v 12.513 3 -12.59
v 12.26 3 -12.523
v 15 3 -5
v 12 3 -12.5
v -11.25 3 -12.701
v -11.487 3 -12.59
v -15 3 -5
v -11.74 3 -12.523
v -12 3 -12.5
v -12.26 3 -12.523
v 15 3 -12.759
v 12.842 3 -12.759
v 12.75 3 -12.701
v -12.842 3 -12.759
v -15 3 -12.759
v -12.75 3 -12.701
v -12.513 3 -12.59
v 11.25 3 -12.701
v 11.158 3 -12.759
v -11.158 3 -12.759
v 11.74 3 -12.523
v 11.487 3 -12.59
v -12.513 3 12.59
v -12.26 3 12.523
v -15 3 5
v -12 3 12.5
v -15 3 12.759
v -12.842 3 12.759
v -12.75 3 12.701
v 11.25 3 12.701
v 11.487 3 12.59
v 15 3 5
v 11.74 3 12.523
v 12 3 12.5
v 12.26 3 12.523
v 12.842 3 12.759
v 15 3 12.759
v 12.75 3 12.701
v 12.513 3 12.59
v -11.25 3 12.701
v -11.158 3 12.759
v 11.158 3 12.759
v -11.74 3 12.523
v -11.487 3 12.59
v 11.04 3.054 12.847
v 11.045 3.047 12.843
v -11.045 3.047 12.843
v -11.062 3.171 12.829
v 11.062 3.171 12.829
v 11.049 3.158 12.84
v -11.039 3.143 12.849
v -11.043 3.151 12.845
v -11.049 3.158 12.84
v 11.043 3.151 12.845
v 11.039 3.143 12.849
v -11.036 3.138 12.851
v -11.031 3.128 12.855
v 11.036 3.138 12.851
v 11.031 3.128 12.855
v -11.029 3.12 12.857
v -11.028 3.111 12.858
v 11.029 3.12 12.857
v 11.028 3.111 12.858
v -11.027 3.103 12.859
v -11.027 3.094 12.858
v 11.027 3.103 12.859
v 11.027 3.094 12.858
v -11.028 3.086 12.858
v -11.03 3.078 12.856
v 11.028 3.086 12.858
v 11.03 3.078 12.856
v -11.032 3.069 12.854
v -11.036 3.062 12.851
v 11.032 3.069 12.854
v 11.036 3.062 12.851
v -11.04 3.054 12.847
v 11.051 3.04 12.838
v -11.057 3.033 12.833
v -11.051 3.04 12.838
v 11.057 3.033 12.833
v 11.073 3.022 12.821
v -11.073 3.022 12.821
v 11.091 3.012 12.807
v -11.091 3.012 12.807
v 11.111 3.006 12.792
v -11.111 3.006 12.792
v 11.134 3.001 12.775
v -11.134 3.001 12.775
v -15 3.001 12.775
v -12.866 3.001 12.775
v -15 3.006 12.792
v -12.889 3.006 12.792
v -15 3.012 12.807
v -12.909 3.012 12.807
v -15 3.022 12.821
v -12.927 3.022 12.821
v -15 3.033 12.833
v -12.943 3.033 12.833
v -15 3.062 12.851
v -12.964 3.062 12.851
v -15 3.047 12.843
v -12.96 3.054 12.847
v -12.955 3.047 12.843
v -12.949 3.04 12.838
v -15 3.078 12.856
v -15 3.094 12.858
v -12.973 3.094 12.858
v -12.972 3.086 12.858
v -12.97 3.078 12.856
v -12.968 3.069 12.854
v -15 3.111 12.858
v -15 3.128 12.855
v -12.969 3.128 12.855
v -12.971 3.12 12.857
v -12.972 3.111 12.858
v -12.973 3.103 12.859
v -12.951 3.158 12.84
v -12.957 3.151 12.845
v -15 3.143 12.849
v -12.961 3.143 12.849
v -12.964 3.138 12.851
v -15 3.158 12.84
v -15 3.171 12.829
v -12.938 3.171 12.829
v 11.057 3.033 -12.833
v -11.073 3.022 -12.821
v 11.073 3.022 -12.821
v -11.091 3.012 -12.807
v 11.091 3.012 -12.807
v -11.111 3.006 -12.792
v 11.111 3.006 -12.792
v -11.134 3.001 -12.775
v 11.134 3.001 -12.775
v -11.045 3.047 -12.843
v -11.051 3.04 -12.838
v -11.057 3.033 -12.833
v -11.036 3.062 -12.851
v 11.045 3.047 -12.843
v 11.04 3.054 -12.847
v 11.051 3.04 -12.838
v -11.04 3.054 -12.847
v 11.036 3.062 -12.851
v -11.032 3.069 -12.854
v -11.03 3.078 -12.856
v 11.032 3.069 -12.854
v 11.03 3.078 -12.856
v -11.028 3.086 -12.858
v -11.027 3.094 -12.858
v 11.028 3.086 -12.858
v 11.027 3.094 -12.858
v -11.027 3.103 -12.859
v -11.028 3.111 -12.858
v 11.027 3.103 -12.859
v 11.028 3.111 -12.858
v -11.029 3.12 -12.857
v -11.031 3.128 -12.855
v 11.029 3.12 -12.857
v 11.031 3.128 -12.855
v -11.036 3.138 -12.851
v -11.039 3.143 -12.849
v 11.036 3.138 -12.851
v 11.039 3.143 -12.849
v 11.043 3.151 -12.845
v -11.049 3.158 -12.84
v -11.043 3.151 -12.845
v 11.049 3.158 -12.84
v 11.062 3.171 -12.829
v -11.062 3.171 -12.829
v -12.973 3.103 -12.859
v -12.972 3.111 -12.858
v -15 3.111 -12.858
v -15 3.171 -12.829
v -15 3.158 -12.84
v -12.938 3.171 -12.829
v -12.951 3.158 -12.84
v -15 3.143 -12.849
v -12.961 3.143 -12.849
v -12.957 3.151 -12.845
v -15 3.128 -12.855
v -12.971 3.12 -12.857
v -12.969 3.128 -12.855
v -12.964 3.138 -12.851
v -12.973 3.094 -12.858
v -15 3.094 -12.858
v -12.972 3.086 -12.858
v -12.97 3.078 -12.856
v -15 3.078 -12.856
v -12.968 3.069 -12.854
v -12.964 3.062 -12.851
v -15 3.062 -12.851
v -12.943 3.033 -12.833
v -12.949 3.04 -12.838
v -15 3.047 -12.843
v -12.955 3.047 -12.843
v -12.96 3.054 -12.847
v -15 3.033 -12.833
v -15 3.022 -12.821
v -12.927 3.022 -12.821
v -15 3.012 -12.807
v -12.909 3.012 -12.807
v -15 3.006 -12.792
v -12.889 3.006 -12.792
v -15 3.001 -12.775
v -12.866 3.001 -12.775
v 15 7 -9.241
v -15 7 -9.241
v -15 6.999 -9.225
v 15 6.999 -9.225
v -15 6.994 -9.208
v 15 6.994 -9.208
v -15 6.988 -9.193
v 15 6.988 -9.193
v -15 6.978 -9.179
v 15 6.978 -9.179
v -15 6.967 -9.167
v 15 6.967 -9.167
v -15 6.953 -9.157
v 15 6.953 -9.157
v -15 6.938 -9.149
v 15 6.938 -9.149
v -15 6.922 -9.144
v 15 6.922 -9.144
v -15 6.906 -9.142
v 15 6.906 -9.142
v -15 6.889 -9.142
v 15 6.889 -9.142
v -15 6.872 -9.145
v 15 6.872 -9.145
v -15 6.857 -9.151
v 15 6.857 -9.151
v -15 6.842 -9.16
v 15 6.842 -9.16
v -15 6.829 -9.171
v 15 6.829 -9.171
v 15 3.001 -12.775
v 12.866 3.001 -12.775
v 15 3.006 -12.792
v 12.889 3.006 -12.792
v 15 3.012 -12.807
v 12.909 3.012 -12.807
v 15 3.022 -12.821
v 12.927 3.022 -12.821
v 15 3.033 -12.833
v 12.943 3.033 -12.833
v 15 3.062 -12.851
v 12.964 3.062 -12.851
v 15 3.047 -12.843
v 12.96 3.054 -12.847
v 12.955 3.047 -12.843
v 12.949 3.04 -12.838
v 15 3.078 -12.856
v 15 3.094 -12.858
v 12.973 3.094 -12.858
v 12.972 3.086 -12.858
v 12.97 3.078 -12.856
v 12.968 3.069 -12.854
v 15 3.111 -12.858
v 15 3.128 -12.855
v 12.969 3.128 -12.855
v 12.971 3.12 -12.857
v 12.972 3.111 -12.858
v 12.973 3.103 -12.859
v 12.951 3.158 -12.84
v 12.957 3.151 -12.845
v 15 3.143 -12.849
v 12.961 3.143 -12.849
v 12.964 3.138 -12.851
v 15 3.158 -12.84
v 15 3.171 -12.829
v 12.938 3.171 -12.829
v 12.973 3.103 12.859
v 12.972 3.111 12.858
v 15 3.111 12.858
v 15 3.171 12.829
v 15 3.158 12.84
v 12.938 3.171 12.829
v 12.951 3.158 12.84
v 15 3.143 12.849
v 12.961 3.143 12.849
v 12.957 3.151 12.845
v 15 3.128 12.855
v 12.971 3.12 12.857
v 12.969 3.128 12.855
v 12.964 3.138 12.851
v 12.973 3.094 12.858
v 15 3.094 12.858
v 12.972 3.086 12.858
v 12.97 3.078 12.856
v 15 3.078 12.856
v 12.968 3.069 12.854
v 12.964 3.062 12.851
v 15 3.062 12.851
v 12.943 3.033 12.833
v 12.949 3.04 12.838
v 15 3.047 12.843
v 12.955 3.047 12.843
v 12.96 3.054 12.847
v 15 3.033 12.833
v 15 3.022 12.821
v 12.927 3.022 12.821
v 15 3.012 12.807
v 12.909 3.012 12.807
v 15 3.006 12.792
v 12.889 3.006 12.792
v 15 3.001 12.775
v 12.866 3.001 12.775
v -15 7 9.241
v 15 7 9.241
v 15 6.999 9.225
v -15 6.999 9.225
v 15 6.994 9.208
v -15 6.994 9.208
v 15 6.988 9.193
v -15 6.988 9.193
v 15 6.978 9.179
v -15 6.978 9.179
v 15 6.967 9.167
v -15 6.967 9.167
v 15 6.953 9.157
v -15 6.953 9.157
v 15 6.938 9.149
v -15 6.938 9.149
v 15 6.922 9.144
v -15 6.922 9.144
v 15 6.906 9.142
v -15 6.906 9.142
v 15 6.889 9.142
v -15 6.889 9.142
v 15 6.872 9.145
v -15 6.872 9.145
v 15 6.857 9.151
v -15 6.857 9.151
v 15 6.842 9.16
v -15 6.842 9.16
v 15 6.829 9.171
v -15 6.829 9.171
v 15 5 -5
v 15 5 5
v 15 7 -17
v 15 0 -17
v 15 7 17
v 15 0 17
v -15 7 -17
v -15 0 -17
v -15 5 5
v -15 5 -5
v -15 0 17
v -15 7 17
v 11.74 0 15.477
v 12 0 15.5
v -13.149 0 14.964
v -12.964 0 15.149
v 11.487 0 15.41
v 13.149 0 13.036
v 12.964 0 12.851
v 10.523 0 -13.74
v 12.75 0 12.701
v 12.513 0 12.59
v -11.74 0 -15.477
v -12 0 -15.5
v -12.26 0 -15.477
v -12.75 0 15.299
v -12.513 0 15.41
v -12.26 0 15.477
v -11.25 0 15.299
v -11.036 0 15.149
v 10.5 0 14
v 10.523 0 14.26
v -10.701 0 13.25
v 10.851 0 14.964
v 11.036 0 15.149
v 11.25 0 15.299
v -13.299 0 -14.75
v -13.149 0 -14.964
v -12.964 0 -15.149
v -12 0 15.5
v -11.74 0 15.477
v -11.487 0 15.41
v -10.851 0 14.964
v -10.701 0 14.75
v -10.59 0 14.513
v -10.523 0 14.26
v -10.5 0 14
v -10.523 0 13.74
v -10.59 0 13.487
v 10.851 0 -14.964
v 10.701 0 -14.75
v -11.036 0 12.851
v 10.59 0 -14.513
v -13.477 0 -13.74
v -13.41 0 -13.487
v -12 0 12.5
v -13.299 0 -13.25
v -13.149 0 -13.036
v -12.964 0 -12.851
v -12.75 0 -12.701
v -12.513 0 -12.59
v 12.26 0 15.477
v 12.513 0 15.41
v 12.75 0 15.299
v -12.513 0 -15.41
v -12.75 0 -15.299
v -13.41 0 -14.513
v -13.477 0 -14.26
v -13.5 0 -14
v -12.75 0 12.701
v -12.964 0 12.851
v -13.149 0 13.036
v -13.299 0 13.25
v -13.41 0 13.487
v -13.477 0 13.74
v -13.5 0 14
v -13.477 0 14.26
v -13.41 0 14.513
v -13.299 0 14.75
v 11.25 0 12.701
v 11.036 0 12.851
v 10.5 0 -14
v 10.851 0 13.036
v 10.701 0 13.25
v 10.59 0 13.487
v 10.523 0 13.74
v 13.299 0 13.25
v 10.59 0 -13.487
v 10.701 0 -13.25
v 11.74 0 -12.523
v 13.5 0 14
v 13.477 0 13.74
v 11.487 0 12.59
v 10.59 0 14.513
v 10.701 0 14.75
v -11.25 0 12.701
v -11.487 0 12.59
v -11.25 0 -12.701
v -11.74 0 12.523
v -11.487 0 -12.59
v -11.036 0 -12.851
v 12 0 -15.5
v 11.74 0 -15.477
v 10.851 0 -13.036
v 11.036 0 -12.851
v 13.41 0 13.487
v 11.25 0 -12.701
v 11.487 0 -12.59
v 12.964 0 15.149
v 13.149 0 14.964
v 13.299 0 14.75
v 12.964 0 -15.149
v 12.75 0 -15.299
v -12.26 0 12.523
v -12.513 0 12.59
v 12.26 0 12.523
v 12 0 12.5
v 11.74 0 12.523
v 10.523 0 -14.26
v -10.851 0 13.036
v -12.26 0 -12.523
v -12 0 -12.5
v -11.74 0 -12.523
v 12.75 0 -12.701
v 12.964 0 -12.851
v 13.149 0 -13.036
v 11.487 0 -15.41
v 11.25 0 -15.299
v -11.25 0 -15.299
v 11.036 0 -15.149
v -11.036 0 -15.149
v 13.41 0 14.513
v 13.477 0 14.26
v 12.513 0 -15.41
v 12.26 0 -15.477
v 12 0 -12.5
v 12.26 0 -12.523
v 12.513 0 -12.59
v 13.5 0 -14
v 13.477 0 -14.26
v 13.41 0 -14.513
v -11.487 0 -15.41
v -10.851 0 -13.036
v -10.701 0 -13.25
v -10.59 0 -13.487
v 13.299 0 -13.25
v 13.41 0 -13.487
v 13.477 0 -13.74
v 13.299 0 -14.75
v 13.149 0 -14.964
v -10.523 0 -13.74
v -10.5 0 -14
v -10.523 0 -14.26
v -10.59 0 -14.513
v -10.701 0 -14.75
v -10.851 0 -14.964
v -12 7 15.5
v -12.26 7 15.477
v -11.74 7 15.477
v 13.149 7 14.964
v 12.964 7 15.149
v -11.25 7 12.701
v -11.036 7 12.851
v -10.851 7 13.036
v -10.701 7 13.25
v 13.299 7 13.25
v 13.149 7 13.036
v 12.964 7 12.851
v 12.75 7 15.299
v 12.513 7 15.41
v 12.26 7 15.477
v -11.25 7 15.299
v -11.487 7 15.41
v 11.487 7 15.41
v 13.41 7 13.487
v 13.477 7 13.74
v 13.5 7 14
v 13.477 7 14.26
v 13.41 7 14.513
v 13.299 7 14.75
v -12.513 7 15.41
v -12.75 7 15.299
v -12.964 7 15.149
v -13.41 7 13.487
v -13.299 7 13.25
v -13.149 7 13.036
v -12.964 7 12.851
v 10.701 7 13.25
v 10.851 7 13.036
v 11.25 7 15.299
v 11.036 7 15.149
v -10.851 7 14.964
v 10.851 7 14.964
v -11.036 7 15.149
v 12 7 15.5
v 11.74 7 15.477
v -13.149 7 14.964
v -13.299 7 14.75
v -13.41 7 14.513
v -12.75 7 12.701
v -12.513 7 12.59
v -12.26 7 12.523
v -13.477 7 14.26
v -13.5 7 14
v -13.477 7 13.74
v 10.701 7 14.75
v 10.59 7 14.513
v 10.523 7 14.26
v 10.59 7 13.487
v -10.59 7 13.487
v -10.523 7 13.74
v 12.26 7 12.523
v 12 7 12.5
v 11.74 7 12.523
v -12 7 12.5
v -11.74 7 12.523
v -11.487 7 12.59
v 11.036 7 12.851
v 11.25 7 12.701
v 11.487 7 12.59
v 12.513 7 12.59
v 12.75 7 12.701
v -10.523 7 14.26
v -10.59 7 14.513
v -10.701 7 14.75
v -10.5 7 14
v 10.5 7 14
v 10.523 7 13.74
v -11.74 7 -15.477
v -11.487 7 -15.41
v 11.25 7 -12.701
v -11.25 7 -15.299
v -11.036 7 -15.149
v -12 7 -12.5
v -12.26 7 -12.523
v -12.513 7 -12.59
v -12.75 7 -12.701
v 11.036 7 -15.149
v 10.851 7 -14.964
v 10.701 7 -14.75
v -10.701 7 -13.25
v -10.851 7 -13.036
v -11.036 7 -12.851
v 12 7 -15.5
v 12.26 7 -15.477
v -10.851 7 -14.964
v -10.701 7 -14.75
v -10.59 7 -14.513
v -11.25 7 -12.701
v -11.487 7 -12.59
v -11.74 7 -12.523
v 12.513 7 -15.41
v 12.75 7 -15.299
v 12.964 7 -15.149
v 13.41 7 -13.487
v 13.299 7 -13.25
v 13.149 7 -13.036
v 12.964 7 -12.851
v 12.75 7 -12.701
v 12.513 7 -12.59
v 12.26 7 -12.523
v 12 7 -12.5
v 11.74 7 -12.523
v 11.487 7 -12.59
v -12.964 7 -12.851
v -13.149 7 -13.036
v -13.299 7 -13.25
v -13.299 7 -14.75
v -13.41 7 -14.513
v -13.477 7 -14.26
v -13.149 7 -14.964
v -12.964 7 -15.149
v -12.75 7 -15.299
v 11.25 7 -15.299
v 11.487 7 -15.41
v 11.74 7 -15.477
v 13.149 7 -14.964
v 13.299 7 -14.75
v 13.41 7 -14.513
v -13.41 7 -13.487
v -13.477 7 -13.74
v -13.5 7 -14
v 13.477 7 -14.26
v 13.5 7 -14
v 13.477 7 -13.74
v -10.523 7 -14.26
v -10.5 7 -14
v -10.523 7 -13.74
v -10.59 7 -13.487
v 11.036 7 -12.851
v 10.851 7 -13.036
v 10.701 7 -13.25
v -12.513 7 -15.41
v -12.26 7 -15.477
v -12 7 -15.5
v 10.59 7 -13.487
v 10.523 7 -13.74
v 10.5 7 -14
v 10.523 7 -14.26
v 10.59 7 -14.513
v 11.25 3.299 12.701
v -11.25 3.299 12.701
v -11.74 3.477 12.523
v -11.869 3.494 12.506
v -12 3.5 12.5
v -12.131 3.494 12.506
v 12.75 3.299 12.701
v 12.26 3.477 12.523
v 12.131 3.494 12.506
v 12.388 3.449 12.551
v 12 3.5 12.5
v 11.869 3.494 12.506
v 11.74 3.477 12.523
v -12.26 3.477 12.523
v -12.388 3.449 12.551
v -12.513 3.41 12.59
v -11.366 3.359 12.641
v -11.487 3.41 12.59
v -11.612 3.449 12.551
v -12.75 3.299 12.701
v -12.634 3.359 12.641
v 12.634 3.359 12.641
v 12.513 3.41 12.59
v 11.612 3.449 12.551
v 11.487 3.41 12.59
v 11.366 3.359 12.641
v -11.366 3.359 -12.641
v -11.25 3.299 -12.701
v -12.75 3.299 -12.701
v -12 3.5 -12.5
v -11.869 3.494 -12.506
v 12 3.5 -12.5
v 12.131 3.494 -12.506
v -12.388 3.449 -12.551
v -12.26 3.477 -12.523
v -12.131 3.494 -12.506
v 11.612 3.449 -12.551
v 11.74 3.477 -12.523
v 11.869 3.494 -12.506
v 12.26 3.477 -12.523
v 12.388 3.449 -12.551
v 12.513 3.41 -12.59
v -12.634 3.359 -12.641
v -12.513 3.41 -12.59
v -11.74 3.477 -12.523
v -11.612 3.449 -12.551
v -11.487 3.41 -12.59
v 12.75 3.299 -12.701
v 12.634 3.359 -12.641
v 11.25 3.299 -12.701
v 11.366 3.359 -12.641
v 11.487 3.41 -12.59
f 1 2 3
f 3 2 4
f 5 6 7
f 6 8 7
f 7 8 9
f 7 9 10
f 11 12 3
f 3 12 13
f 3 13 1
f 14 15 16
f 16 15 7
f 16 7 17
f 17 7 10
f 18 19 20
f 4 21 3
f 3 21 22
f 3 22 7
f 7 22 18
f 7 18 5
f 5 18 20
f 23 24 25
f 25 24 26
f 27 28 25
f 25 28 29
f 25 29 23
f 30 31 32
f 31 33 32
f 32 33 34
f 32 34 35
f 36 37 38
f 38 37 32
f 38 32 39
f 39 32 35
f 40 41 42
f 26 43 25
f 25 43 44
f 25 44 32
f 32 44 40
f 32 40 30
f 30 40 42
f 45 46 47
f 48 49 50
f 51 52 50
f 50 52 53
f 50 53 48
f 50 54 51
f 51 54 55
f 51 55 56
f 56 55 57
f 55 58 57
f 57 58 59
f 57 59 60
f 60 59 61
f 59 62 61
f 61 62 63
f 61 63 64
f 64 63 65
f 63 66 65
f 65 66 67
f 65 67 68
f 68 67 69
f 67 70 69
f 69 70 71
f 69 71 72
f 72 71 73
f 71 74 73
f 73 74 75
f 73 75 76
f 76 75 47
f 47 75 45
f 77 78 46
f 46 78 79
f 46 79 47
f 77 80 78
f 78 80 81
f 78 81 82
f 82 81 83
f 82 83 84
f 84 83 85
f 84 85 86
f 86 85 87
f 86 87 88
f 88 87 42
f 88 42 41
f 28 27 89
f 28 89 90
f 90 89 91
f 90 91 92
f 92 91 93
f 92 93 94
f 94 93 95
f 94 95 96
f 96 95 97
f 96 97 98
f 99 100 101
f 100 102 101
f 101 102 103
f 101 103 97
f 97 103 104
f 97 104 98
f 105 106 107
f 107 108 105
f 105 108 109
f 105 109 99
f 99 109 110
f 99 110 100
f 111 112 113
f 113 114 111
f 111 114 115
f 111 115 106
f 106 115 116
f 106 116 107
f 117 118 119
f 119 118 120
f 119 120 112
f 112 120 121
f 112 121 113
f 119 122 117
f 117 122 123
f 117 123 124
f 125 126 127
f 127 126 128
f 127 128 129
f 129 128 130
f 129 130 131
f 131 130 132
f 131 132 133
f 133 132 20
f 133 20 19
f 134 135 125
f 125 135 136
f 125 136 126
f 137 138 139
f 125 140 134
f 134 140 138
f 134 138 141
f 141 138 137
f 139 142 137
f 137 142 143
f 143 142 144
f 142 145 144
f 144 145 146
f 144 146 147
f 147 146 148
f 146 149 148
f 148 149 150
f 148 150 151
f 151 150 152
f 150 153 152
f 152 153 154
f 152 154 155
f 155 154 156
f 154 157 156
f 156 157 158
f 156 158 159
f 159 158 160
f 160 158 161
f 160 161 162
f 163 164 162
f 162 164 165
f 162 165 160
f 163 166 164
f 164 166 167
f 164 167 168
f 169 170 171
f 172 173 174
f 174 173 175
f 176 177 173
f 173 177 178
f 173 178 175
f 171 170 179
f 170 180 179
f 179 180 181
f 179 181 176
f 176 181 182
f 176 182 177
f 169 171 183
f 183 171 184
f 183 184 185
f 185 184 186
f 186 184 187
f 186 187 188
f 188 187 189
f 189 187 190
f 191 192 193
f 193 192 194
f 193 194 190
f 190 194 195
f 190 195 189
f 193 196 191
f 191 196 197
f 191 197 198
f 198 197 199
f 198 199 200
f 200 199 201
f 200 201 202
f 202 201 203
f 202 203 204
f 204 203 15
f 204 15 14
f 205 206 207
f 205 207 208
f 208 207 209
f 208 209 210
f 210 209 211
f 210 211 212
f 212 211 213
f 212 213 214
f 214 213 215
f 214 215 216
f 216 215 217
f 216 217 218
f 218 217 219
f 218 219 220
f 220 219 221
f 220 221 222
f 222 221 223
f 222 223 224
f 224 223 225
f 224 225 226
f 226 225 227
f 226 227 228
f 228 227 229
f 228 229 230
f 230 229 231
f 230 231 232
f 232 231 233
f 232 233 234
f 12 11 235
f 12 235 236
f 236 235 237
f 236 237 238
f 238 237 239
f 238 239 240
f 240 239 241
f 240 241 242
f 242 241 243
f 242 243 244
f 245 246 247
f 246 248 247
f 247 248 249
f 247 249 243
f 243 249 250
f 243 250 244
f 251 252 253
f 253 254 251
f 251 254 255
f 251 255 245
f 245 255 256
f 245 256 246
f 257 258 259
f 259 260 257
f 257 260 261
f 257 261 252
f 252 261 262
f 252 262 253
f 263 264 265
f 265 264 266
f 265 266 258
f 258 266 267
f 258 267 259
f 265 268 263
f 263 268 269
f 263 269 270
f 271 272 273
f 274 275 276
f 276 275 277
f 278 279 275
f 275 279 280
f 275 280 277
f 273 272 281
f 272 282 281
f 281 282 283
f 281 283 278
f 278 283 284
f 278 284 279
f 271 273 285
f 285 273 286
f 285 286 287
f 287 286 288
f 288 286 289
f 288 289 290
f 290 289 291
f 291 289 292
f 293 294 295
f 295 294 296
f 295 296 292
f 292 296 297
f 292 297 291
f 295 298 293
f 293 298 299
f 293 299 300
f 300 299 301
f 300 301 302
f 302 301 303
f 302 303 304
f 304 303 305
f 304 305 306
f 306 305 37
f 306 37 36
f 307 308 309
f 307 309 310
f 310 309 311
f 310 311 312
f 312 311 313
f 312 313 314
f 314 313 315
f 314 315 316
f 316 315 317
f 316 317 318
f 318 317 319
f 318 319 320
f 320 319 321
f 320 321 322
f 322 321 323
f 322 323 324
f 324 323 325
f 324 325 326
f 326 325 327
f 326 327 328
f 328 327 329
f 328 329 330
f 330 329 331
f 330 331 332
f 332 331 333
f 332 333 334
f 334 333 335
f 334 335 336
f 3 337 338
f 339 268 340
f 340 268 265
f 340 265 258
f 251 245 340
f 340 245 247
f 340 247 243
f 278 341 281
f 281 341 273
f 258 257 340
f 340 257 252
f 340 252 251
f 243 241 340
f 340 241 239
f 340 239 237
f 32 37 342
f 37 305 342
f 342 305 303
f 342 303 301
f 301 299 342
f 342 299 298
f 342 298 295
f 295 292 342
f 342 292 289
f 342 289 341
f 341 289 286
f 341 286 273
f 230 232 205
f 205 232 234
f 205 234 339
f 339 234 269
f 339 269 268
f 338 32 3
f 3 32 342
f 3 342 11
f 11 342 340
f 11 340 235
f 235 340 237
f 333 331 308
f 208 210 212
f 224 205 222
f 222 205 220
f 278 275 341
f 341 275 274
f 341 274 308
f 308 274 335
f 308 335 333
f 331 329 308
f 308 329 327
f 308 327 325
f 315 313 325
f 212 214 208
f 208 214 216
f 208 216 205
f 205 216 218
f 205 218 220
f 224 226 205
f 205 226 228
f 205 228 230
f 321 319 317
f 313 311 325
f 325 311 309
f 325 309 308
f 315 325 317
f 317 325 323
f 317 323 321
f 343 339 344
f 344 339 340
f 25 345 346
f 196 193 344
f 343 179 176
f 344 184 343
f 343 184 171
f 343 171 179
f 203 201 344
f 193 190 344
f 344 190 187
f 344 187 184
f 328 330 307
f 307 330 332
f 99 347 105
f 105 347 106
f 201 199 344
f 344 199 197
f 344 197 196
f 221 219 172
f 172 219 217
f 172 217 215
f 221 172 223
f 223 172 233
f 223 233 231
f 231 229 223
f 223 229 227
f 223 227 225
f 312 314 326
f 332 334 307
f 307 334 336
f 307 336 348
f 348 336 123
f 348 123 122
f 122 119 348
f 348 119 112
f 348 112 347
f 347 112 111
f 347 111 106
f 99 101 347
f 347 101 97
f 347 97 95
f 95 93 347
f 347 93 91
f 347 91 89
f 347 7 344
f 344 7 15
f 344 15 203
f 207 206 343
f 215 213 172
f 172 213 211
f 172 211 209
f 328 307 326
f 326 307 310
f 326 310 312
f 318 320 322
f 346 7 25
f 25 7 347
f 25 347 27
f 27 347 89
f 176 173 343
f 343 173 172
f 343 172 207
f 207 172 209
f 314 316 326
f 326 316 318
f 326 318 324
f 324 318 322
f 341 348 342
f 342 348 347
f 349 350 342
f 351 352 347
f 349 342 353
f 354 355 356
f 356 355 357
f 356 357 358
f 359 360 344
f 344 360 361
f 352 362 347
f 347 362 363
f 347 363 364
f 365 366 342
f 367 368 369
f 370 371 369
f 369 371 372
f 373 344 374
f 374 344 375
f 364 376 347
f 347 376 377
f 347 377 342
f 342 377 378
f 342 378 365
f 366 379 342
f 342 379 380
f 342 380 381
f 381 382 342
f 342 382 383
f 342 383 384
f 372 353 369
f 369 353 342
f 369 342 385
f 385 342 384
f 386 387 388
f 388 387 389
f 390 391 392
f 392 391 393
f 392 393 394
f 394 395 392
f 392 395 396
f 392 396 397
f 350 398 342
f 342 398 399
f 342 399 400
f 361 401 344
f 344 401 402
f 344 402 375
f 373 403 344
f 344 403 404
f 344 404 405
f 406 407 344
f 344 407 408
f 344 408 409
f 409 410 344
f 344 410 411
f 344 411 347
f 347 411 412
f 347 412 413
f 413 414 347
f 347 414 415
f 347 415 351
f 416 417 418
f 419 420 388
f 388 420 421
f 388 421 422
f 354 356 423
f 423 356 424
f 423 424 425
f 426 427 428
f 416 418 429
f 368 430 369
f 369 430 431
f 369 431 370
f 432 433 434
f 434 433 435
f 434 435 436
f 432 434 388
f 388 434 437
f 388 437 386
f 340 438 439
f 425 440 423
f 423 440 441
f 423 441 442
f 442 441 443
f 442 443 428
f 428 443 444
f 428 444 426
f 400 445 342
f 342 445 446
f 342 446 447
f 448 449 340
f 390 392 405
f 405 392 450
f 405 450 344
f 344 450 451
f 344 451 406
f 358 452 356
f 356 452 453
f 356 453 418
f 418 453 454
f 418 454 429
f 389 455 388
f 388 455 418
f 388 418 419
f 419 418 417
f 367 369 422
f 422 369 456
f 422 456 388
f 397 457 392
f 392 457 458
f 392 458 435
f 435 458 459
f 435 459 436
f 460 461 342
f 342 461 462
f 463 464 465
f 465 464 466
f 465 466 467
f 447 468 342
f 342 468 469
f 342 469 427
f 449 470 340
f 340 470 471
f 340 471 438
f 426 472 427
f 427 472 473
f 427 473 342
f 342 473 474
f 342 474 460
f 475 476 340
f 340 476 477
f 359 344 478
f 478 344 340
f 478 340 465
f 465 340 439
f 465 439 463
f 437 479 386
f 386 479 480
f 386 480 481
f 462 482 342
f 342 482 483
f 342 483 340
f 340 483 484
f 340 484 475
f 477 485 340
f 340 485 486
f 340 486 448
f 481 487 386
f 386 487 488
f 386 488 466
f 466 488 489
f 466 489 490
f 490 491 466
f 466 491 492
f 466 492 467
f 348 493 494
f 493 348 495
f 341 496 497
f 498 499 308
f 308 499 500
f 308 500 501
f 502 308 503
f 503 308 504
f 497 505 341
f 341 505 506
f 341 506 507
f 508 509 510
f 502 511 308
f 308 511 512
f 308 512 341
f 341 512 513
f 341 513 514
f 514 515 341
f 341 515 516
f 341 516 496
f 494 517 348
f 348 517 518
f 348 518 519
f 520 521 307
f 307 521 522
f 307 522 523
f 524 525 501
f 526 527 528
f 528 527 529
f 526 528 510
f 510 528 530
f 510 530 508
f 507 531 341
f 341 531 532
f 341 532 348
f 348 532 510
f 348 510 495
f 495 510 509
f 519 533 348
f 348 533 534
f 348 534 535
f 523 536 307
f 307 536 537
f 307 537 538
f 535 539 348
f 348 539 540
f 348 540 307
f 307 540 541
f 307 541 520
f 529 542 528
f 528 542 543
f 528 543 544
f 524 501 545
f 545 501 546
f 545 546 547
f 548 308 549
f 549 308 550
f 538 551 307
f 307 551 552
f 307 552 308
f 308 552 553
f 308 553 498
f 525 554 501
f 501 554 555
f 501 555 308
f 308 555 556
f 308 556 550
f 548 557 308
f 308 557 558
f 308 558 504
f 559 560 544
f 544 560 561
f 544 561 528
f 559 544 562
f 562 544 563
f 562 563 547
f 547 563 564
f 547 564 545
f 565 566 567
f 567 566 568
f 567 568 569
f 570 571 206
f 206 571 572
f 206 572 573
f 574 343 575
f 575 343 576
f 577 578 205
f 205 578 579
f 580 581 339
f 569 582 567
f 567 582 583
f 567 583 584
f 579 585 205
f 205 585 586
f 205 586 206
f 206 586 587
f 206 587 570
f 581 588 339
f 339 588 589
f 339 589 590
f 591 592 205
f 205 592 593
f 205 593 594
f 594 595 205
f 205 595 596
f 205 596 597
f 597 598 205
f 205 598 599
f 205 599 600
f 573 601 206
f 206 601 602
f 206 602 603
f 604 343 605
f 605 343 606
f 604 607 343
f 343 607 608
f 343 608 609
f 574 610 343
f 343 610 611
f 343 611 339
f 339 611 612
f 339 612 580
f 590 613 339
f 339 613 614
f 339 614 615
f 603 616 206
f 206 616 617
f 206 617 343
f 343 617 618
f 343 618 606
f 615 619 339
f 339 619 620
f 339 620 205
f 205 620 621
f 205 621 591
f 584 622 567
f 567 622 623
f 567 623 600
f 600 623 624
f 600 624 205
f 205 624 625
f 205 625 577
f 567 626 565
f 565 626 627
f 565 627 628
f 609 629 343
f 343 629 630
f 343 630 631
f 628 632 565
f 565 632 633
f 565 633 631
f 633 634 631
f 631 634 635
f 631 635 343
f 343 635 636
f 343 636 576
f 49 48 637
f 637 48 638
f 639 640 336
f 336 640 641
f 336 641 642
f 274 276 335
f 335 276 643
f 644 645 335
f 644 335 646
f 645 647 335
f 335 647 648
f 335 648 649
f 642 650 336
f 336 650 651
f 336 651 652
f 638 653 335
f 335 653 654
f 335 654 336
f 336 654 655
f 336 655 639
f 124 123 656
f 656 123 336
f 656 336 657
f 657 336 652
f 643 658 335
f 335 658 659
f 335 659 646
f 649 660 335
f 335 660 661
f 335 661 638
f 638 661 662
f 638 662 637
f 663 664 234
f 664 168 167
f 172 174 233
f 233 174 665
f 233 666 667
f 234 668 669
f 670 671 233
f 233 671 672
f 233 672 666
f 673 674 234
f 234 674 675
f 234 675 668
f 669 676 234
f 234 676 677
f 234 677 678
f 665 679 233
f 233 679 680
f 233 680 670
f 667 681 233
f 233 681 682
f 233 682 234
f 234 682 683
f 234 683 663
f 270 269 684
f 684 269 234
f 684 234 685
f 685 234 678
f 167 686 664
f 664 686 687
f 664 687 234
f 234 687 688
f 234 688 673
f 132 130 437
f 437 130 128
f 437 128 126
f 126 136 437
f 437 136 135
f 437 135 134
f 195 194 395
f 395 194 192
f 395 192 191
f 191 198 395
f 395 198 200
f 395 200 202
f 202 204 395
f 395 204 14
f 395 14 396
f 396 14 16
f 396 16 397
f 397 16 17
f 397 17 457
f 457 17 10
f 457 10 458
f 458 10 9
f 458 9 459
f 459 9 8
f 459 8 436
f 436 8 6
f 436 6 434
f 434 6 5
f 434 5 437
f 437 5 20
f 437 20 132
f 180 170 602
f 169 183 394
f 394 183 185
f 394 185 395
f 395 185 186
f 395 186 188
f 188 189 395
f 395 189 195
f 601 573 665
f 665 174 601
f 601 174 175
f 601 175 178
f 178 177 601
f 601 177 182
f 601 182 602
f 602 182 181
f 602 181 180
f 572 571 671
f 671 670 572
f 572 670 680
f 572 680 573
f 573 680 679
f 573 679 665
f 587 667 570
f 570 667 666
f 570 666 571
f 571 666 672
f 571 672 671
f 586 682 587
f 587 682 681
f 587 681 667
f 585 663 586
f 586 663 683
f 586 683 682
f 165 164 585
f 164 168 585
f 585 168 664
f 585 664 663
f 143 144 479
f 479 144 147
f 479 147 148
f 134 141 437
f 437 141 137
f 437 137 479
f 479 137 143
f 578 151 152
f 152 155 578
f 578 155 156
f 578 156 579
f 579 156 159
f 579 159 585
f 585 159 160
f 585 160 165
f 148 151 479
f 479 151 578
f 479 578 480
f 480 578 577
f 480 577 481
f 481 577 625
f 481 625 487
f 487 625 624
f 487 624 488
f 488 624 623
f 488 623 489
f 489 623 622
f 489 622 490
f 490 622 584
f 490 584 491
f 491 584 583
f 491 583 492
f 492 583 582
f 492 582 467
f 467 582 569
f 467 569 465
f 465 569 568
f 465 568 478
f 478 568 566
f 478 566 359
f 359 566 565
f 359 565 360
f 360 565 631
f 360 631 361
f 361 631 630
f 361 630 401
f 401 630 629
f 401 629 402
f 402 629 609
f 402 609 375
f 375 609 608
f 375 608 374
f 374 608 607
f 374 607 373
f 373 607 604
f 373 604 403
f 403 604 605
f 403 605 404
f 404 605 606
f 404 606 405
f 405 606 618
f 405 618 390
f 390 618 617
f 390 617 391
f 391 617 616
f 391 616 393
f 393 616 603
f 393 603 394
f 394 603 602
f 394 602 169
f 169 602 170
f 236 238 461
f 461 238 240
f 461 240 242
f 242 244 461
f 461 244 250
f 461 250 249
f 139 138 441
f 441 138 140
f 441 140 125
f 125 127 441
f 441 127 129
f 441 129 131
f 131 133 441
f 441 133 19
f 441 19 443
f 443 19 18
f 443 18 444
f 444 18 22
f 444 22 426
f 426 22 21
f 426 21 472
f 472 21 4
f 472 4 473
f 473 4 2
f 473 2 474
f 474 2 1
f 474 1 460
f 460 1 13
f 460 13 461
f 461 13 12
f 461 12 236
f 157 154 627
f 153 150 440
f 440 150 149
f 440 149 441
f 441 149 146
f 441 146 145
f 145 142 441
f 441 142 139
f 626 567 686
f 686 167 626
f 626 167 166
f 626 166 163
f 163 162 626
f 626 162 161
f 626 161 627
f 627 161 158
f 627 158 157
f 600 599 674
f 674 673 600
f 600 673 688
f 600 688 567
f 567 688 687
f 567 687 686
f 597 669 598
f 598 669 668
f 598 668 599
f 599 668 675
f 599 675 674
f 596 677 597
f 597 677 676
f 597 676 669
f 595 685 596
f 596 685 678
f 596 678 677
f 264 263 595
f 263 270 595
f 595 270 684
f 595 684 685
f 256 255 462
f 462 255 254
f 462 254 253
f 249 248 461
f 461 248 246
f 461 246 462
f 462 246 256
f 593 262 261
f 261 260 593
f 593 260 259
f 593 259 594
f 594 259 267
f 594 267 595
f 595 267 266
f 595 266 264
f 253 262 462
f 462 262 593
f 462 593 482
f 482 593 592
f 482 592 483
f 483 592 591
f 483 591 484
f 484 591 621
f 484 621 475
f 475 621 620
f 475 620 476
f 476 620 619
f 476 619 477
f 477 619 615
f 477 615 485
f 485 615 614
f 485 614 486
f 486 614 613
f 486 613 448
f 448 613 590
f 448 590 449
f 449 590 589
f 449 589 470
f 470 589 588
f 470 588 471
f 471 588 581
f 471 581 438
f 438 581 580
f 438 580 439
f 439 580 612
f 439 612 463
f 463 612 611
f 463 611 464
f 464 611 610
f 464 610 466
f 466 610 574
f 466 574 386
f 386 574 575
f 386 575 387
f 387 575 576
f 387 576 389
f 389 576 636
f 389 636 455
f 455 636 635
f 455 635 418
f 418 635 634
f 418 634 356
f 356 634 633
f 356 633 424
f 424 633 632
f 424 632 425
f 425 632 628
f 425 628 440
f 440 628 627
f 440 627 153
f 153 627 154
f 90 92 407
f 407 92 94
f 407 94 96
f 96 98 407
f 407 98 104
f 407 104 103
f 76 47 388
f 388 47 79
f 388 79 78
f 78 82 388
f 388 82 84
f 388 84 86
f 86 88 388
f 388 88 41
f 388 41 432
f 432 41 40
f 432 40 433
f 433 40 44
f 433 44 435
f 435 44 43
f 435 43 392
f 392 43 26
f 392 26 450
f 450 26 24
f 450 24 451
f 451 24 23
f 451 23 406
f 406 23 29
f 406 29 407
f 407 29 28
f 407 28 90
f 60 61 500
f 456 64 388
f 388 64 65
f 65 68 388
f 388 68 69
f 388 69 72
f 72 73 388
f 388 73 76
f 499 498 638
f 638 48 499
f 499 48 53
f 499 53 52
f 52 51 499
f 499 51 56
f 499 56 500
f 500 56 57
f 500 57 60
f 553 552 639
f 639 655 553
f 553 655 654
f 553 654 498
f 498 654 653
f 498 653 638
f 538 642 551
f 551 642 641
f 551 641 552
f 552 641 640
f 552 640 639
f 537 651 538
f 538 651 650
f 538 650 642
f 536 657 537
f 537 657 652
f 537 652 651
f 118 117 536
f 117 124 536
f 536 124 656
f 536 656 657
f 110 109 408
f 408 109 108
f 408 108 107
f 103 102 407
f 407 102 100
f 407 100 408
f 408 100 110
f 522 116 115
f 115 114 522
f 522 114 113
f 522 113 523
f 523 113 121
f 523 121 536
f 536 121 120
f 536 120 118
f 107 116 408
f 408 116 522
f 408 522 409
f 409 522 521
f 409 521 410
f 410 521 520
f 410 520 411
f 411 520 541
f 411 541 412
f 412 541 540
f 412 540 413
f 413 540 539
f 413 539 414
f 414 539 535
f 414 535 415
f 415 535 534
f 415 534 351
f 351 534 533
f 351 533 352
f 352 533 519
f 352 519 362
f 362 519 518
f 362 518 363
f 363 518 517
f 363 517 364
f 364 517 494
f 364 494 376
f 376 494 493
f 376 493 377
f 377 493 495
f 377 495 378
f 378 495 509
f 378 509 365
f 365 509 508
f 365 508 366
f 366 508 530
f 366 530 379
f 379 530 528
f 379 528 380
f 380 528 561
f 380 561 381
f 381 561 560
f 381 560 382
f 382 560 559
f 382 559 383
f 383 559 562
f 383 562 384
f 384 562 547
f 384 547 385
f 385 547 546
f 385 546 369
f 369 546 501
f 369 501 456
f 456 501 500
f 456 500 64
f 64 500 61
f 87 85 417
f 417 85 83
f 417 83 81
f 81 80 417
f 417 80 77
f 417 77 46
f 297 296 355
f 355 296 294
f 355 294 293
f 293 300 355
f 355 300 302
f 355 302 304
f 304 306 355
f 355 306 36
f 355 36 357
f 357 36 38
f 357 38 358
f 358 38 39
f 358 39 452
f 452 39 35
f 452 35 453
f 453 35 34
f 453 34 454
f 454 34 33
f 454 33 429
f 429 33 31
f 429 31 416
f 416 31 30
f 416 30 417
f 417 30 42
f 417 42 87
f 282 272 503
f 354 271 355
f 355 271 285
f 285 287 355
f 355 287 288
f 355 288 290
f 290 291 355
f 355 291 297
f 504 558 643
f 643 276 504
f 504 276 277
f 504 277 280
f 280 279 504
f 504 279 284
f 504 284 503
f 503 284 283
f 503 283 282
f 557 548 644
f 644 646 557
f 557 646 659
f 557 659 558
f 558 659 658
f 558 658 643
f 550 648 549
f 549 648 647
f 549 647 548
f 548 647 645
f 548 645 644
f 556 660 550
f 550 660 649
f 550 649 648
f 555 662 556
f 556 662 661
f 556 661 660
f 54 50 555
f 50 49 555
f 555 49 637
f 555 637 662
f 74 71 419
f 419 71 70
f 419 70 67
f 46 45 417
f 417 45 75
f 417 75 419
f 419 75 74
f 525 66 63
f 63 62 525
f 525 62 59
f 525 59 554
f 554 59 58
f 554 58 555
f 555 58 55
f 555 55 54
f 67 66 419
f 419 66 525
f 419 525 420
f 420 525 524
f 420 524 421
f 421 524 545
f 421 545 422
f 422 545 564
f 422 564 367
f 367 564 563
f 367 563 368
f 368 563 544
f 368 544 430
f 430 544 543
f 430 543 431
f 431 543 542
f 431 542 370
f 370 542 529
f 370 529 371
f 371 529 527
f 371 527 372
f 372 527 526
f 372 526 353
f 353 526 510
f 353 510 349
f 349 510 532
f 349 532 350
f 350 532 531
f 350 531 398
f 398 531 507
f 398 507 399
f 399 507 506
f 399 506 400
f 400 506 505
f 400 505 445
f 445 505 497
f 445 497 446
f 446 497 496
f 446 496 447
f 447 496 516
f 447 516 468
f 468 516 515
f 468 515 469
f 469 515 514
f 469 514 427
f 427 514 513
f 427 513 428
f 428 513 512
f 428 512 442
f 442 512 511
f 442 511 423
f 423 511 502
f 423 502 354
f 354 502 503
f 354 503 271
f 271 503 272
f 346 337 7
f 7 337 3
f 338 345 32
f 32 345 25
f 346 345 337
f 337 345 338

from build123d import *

# Parameters (mm, degrees)
SKETCH1_W           = 30
SKETCH1_H           = 34
BOSS_EXTRUDE1_DEPTH = 3
SKETCH2_W           = 30
SKETCH2_H           = 8
BOSS_EXTRUDE2_DEPTH = 4
CUT_EXTRUDE2_DEPTH  = 30
FILLET4_R           = 0.1
FILLET5_R           = 0.1
FILLET6_R           = 0.1
FILLET7_R           = 0.1
SKETCH5_R           = 1.5
CUT_EXTRUDE3_DEPTH  = 30
SKETCH7_W           = 30
SKETCH7_H           = 10
BOSS_EXTRUDE3_DEPTH = 2


with BuildPart() as part:
    # Sketch1 → Boss-Extrude1 (new body)
    with BuildSketch(Plane(origin=(0, 0, 0), x_dir=(1, 0, 0), z_dir=(0, 1, 0))):
        Rectangle(SKETCH1_W, SKETCH1_H)
    extrude(amount=BOSS_EXTRUDE1_DEPTH)

    # Sketch2 → Boss-Extrude2 (add)
    with BuildSketch(Plane(origin=(0, 3, 0), x_dir=(1, 0, 0), z_dir=(0, 1, 0))):
        with Locations((0, -13)):
            Rectangle(SKETCH2_W, SKETCH2_H)
        with Locations((0, 13)):
            Rectangle(SKETCH2_W, SKETCH2_H)
    extrude(amount=BOSS_EXTRUDE2_DEPTH)

    # Sketch4 → Cut-Extrude2 (cut)
    with BuildSketch(Plane(origin=(15, 0, 0), x_dir=(0, 0, -1), z_dir=(1, 0, 0))):
        Polygon((-9, 3), (-13, 3), (-9, 7), align=None)
        Polygon((9, 3), (13, 3), (9, 7), align=None)
    extrude(amount=-CUT_EXTRUDE2_DEPTH, mode=Mode.SUBTRACT)

    # Fillet4
    fillet4_edges = [part.edges().sort_by_distance(p)[0] for p in [
        (0, 7, 9),
    ]]
    fillet(fillet4_edges, radius=FILLET4_R)

    # Fillet5
    fillet5_edges = [part.edges().sort_by_distance(p)[0] for p in [
        (0, 3, 13),
    ]]
    fillet(fillet5_edges, radius=FILLET5_R)

    # Fillet6
    fillet6_edges = [part.edges().sort_by_distance(p)[0] for p in [
        (0, 3, -13),
    ]]
    fillet(fillet6_edges, radius=FILLET6_R)

    # Fillet7
    fillet7_edges = [part.edges().sort_by_distance(p)[0] for p in [
        (0, 7, -9),
    ]]
    fillet(fillet7_edges, radius=FILLET7_R)

    # Sketch5 → Cut-Extrude3 (cut)
    with BuildSketch(Plane(origin=(0, 7, 0), x_dir=(1, 0, 0), z_dir=(0, 1, 0))):
        with Locations(Location((-12, 14, 0), (0, 0, 270))):
            Circle(SKETCH5_R)
        with Locations(Location((12, 14, 0), (0, 0, 270))):
            Circle(SKETCH5_R)
        with Locations(Location((-12, -14, 0), (0, 0, 270))):
            Circle(SKETCH5_R)
        with Locations(Location((12, -14, 0), (0, 0, 270))):
            Circle(SKETCH5_R)
    extrude(amount=-CUT_EXTRUDE3_DEPTH, mode=Mode.SUBTRACT)

    # Sketch7 → Boss-Extrude3 (add)
    with BuildSketch(Plane(origin=(0, 3, 0), x_dir=(1, 0, 0), z_dir=(0, 1, 0))):
        Rectangle(SKETCH7_W, SKETCH7_H)
    extrude(amount=BOSS_EXTRUDE3_DEPTH)


solid = part.part
